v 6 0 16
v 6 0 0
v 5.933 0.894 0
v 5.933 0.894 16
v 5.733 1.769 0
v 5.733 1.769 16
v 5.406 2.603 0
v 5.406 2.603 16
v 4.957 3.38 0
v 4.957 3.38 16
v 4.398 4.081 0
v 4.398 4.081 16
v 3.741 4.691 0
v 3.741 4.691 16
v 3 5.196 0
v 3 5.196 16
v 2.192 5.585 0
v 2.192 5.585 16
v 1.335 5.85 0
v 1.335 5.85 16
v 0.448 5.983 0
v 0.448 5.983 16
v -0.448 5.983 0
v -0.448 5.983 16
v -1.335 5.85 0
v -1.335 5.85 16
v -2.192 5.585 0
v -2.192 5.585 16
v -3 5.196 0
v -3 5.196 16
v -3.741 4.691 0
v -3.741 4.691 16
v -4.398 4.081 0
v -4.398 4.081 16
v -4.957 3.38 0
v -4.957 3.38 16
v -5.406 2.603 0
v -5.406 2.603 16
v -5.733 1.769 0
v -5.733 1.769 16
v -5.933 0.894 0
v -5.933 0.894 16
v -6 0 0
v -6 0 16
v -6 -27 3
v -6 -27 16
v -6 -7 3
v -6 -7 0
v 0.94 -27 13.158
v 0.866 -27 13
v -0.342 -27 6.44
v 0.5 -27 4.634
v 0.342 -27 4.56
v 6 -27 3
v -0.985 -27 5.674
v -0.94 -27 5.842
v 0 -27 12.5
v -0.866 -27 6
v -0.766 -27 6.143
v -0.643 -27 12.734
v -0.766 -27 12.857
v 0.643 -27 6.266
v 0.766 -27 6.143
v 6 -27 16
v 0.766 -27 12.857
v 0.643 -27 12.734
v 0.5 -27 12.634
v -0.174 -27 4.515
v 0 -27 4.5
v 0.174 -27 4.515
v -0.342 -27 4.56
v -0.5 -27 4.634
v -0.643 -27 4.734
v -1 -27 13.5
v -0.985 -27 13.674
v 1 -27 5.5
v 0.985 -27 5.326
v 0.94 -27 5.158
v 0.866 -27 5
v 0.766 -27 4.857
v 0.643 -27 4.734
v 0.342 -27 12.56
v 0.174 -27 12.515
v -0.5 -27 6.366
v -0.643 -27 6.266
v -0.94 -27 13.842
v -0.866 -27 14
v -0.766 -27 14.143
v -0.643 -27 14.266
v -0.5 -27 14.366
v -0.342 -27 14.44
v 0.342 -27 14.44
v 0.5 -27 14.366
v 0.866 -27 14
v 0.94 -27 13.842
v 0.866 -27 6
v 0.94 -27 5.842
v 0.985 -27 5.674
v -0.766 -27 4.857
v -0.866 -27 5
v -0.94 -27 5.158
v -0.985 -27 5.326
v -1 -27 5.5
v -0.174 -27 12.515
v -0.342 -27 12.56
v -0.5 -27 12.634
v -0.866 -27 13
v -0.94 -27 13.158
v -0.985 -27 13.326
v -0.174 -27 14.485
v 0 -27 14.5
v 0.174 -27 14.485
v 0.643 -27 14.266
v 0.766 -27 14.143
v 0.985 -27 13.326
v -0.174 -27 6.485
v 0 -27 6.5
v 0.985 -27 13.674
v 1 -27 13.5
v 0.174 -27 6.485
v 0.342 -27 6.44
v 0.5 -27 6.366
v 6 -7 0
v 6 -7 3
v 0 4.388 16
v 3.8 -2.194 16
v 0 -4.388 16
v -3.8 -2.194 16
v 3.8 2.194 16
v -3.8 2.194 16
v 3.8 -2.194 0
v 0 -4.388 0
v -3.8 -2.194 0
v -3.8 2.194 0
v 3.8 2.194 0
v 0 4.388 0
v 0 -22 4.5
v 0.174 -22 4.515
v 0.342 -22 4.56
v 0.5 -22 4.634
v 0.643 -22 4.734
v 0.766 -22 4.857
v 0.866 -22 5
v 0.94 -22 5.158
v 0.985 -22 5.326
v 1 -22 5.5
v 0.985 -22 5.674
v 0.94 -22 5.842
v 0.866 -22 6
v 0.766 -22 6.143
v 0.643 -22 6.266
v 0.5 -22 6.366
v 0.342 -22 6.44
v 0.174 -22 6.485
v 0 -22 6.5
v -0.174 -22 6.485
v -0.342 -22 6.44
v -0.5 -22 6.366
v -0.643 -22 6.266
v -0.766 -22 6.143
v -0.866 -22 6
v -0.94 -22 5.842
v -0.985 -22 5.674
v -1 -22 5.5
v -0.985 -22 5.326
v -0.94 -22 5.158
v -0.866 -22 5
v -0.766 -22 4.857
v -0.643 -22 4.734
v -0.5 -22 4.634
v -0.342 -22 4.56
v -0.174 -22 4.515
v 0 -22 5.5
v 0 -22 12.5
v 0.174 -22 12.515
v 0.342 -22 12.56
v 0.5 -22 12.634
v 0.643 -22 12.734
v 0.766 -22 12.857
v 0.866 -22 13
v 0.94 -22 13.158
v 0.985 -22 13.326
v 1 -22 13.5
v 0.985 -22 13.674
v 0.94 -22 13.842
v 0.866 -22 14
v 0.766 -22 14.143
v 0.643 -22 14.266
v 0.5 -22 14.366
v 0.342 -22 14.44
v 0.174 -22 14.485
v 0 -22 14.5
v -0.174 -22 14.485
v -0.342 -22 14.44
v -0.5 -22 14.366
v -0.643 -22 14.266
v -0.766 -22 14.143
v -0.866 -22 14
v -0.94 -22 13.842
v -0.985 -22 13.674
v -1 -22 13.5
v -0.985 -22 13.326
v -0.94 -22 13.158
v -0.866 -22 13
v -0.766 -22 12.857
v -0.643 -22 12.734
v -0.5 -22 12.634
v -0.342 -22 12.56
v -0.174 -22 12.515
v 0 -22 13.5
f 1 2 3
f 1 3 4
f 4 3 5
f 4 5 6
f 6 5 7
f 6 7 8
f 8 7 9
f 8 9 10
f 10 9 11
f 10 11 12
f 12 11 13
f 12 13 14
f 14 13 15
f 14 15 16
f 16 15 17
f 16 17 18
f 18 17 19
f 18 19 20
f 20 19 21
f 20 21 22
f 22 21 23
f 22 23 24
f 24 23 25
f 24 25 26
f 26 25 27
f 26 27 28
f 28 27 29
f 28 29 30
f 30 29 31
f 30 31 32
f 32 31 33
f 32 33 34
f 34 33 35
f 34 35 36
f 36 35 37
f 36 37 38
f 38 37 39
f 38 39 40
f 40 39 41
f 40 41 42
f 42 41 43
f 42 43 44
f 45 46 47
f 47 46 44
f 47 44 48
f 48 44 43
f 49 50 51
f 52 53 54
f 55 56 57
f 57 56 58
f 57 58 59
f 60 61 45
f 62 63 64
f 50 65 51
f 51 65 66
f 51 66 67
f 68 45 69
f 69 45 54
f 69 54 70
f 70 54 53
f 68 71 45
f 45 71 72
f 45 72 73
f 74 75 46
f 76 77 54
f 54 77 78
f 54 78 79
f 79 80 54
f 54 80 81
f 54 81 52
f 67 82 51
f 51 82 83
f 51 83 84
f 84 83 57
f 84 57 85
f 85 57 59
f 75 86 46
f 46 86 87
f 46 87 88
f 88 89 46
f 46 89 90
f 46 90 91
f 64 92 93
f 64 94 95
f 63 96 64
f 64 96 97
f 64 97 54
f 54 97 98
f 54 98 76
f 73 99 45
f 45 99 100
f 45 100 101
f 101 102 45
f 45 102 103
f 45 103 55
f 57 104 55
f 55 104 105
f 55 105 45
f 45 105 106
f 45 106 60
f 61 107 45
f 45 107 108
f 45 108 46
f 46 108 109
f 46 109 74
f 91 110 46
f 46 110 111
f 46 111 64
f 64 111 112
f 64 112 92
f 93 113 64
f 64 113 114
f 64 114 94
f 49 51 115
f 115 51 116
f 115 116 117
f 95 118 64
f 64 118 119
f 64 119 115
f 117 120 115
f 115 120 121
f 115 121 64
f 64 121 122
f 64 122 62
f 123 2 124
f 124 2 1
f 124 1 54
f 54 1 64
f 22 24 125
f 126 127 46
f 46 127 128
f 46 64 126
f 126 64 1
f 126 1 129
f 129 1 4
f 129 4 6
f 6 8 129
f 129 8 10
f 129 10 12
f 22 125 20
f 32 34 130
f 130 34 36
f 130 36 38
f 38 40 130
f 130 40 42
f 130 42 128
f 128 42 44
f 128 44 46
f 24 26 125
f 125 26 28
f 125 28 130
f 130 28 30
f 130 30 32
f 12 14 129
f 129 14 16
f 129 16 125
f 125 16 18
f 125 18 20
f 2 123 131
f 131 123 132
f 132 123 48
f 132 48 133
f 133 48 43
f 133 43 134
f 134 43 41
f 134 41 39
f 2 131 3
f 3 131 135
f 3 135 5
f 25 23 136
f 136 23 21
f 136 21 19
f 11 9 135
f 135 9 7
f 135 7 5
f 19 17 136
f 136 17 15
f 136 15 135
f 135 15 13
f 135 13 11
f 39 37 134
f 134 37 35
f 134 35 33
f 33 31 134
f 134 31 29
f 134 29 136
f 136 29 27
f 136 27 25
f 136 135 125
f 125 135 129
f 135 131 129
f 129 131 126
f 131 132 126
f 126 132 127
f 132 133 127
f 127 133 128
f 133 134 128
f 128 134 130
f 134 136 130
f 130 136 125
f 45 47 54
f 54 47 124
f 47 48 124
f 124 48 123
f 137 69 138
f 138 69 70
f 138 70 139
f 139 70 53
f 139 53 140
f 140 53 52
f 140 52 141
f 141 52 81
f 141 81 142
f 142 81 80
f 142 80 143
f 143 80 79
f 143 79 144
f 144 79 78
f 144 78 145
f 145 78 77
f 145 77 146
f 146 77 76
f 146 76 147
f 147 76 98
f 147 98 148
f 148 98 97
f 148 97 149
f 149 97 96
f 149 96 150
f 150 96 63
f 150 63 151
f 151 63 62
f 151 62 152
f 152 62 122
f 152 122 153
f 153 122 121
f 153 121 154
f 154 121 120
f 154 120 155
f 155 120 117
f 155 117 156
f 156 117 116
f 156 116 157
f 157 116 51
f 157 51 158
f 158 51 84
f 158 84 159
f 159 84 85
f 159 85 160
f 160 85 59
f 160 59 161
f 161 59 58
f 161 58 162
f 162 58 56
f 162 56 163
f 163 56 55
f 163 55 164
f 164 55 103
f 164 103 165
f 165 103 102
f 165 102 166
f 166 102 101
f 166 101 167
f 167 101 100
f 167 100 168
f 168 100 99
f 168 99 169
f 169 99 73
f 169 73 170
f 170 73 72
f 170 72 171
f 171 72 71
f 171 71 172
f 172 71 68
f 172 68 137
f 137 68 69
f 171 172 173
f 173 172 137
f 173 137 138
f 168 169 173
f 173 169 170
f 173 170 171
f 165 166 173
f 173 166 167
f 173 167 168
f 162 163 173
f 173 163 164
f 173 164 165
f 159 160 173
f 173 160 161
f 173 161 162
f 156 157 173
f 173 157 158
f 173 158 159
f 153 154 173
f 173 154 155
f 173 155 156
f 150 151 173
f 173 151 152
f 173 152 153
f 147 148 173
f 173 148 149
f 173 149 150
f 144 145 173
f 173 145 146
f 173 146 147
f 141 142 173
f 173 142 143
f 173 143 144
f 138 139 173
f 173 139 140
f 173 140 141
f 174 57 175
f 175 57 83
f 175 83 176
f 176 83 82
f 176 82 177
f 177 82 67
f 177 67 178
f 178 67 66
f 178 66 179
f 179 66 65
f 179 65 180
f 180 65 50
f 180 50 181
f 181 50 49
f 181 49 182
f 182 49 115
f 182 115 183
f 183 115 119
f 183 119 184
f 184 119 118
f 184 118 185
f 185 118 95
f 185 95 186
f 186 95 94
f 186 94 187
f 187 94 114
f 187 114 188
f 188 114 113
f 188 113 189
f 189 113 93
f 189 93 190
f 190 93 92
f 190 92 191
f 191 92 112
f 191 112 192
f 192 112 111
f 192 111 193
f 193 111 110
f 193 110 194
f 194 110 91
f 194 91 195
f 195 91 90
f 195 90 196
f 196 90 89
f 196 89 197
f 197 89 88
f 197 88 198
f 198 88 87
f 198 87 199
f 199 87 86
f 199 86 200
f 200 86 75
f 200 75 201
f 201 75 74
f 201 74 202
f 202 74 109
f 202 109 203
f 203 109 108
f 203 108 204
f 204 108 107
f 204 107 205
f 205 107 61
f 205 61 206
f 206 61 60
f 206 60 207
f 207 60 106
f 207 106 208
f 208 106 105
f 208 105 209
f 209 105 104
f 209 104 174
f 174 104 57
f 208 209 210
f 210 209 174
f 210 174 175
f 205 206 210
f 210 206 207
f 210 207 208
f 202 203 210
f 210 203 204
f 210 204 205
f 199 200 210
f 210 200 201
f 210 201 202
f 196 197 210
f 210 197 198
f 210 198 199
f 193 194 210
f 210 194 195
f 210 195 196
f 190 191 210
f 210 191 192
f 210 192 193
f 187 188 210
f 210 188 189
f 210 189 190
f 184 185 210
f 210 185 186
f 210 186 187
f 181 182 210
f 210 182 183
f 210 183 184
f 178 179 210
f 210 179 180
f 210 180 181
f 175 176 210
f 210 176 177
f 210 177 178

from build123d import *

# Parameters (mm, degrees)
RESSALTO_EXTRUS_O1_DEPTH = 16
CORTE_EXTRUS_O1_DEPTH    = 32.953090617
ESBO_O8_W                = 3
ESBO_O8_H                = 20
CORTE_EXTRUS_O4_DEPTH    = 34.600595233
ESBO_O5_R                = 1
CORTE_EXTRUS_O2_DEPTH    = 5


with BuildPart() as part:
    # Esboço1 → Ressalto-extrusão1 (new body)
    with BuildSketch(Plane.XY):
        with BuildLine():
            Line((-6, 0), (-6, -27))
            Line((-6, -27), (6, -27))
            Line((6, -27), (6, 0))
            ThreePointArc((6, 0), (0, 6), (-6, 0))
        make_face()
    extrude(amount=RESSALTO_EXTRUS_O1_DEPTH)

    # Esboço2 → Corte-extrusão1 (cut, through all)
    with BuildSketch(Plane.XY.offset(16)):
        Polygon((0, 4.387862046), (-3.8, 2.193931023), (-3.8, -2.193931023), (0, -4.387862046), (3.8, -2.193931023), (3.8, 2.193931023), align=None)
    extrude(amount=-CORTE_EXTRUS_O1_DEPTH, mode=Mode.SUBTRACT)

    # Esboço8 → Corte-extrusão4 (cut, through all)
    with BuildSketch(Plane(origin=(6, 0, 0), x_dir=(0, 0, -1), z_dir=(1, 0, 0))):
        with Locations((-1.5, -17)):
            Rectangle(ESBO_O8_W, ESBO_O8_H)
    extrude(amount=-CORTE_EXTRUS_O4_DEPTH, mode=Mode.SUBTRACT)

    # Esboço5 → Corte-extrusão2 (cut)
    with BuildSketch(Plane.XZ.offset(27)):
        with Locations(Location((0, 13.5, 0), (0, 0, 270))):
            Circle(ESBO_O5_R)
        with Locations(Location((0, 5.5, 0), (0, 0, 270))):
            Circle(ESBO_O5_R)
    extrude(amount=-CORTE_EXTRUS_O2_DEPTH, mode=Mode.SUBTRACT)


solid = part.part
